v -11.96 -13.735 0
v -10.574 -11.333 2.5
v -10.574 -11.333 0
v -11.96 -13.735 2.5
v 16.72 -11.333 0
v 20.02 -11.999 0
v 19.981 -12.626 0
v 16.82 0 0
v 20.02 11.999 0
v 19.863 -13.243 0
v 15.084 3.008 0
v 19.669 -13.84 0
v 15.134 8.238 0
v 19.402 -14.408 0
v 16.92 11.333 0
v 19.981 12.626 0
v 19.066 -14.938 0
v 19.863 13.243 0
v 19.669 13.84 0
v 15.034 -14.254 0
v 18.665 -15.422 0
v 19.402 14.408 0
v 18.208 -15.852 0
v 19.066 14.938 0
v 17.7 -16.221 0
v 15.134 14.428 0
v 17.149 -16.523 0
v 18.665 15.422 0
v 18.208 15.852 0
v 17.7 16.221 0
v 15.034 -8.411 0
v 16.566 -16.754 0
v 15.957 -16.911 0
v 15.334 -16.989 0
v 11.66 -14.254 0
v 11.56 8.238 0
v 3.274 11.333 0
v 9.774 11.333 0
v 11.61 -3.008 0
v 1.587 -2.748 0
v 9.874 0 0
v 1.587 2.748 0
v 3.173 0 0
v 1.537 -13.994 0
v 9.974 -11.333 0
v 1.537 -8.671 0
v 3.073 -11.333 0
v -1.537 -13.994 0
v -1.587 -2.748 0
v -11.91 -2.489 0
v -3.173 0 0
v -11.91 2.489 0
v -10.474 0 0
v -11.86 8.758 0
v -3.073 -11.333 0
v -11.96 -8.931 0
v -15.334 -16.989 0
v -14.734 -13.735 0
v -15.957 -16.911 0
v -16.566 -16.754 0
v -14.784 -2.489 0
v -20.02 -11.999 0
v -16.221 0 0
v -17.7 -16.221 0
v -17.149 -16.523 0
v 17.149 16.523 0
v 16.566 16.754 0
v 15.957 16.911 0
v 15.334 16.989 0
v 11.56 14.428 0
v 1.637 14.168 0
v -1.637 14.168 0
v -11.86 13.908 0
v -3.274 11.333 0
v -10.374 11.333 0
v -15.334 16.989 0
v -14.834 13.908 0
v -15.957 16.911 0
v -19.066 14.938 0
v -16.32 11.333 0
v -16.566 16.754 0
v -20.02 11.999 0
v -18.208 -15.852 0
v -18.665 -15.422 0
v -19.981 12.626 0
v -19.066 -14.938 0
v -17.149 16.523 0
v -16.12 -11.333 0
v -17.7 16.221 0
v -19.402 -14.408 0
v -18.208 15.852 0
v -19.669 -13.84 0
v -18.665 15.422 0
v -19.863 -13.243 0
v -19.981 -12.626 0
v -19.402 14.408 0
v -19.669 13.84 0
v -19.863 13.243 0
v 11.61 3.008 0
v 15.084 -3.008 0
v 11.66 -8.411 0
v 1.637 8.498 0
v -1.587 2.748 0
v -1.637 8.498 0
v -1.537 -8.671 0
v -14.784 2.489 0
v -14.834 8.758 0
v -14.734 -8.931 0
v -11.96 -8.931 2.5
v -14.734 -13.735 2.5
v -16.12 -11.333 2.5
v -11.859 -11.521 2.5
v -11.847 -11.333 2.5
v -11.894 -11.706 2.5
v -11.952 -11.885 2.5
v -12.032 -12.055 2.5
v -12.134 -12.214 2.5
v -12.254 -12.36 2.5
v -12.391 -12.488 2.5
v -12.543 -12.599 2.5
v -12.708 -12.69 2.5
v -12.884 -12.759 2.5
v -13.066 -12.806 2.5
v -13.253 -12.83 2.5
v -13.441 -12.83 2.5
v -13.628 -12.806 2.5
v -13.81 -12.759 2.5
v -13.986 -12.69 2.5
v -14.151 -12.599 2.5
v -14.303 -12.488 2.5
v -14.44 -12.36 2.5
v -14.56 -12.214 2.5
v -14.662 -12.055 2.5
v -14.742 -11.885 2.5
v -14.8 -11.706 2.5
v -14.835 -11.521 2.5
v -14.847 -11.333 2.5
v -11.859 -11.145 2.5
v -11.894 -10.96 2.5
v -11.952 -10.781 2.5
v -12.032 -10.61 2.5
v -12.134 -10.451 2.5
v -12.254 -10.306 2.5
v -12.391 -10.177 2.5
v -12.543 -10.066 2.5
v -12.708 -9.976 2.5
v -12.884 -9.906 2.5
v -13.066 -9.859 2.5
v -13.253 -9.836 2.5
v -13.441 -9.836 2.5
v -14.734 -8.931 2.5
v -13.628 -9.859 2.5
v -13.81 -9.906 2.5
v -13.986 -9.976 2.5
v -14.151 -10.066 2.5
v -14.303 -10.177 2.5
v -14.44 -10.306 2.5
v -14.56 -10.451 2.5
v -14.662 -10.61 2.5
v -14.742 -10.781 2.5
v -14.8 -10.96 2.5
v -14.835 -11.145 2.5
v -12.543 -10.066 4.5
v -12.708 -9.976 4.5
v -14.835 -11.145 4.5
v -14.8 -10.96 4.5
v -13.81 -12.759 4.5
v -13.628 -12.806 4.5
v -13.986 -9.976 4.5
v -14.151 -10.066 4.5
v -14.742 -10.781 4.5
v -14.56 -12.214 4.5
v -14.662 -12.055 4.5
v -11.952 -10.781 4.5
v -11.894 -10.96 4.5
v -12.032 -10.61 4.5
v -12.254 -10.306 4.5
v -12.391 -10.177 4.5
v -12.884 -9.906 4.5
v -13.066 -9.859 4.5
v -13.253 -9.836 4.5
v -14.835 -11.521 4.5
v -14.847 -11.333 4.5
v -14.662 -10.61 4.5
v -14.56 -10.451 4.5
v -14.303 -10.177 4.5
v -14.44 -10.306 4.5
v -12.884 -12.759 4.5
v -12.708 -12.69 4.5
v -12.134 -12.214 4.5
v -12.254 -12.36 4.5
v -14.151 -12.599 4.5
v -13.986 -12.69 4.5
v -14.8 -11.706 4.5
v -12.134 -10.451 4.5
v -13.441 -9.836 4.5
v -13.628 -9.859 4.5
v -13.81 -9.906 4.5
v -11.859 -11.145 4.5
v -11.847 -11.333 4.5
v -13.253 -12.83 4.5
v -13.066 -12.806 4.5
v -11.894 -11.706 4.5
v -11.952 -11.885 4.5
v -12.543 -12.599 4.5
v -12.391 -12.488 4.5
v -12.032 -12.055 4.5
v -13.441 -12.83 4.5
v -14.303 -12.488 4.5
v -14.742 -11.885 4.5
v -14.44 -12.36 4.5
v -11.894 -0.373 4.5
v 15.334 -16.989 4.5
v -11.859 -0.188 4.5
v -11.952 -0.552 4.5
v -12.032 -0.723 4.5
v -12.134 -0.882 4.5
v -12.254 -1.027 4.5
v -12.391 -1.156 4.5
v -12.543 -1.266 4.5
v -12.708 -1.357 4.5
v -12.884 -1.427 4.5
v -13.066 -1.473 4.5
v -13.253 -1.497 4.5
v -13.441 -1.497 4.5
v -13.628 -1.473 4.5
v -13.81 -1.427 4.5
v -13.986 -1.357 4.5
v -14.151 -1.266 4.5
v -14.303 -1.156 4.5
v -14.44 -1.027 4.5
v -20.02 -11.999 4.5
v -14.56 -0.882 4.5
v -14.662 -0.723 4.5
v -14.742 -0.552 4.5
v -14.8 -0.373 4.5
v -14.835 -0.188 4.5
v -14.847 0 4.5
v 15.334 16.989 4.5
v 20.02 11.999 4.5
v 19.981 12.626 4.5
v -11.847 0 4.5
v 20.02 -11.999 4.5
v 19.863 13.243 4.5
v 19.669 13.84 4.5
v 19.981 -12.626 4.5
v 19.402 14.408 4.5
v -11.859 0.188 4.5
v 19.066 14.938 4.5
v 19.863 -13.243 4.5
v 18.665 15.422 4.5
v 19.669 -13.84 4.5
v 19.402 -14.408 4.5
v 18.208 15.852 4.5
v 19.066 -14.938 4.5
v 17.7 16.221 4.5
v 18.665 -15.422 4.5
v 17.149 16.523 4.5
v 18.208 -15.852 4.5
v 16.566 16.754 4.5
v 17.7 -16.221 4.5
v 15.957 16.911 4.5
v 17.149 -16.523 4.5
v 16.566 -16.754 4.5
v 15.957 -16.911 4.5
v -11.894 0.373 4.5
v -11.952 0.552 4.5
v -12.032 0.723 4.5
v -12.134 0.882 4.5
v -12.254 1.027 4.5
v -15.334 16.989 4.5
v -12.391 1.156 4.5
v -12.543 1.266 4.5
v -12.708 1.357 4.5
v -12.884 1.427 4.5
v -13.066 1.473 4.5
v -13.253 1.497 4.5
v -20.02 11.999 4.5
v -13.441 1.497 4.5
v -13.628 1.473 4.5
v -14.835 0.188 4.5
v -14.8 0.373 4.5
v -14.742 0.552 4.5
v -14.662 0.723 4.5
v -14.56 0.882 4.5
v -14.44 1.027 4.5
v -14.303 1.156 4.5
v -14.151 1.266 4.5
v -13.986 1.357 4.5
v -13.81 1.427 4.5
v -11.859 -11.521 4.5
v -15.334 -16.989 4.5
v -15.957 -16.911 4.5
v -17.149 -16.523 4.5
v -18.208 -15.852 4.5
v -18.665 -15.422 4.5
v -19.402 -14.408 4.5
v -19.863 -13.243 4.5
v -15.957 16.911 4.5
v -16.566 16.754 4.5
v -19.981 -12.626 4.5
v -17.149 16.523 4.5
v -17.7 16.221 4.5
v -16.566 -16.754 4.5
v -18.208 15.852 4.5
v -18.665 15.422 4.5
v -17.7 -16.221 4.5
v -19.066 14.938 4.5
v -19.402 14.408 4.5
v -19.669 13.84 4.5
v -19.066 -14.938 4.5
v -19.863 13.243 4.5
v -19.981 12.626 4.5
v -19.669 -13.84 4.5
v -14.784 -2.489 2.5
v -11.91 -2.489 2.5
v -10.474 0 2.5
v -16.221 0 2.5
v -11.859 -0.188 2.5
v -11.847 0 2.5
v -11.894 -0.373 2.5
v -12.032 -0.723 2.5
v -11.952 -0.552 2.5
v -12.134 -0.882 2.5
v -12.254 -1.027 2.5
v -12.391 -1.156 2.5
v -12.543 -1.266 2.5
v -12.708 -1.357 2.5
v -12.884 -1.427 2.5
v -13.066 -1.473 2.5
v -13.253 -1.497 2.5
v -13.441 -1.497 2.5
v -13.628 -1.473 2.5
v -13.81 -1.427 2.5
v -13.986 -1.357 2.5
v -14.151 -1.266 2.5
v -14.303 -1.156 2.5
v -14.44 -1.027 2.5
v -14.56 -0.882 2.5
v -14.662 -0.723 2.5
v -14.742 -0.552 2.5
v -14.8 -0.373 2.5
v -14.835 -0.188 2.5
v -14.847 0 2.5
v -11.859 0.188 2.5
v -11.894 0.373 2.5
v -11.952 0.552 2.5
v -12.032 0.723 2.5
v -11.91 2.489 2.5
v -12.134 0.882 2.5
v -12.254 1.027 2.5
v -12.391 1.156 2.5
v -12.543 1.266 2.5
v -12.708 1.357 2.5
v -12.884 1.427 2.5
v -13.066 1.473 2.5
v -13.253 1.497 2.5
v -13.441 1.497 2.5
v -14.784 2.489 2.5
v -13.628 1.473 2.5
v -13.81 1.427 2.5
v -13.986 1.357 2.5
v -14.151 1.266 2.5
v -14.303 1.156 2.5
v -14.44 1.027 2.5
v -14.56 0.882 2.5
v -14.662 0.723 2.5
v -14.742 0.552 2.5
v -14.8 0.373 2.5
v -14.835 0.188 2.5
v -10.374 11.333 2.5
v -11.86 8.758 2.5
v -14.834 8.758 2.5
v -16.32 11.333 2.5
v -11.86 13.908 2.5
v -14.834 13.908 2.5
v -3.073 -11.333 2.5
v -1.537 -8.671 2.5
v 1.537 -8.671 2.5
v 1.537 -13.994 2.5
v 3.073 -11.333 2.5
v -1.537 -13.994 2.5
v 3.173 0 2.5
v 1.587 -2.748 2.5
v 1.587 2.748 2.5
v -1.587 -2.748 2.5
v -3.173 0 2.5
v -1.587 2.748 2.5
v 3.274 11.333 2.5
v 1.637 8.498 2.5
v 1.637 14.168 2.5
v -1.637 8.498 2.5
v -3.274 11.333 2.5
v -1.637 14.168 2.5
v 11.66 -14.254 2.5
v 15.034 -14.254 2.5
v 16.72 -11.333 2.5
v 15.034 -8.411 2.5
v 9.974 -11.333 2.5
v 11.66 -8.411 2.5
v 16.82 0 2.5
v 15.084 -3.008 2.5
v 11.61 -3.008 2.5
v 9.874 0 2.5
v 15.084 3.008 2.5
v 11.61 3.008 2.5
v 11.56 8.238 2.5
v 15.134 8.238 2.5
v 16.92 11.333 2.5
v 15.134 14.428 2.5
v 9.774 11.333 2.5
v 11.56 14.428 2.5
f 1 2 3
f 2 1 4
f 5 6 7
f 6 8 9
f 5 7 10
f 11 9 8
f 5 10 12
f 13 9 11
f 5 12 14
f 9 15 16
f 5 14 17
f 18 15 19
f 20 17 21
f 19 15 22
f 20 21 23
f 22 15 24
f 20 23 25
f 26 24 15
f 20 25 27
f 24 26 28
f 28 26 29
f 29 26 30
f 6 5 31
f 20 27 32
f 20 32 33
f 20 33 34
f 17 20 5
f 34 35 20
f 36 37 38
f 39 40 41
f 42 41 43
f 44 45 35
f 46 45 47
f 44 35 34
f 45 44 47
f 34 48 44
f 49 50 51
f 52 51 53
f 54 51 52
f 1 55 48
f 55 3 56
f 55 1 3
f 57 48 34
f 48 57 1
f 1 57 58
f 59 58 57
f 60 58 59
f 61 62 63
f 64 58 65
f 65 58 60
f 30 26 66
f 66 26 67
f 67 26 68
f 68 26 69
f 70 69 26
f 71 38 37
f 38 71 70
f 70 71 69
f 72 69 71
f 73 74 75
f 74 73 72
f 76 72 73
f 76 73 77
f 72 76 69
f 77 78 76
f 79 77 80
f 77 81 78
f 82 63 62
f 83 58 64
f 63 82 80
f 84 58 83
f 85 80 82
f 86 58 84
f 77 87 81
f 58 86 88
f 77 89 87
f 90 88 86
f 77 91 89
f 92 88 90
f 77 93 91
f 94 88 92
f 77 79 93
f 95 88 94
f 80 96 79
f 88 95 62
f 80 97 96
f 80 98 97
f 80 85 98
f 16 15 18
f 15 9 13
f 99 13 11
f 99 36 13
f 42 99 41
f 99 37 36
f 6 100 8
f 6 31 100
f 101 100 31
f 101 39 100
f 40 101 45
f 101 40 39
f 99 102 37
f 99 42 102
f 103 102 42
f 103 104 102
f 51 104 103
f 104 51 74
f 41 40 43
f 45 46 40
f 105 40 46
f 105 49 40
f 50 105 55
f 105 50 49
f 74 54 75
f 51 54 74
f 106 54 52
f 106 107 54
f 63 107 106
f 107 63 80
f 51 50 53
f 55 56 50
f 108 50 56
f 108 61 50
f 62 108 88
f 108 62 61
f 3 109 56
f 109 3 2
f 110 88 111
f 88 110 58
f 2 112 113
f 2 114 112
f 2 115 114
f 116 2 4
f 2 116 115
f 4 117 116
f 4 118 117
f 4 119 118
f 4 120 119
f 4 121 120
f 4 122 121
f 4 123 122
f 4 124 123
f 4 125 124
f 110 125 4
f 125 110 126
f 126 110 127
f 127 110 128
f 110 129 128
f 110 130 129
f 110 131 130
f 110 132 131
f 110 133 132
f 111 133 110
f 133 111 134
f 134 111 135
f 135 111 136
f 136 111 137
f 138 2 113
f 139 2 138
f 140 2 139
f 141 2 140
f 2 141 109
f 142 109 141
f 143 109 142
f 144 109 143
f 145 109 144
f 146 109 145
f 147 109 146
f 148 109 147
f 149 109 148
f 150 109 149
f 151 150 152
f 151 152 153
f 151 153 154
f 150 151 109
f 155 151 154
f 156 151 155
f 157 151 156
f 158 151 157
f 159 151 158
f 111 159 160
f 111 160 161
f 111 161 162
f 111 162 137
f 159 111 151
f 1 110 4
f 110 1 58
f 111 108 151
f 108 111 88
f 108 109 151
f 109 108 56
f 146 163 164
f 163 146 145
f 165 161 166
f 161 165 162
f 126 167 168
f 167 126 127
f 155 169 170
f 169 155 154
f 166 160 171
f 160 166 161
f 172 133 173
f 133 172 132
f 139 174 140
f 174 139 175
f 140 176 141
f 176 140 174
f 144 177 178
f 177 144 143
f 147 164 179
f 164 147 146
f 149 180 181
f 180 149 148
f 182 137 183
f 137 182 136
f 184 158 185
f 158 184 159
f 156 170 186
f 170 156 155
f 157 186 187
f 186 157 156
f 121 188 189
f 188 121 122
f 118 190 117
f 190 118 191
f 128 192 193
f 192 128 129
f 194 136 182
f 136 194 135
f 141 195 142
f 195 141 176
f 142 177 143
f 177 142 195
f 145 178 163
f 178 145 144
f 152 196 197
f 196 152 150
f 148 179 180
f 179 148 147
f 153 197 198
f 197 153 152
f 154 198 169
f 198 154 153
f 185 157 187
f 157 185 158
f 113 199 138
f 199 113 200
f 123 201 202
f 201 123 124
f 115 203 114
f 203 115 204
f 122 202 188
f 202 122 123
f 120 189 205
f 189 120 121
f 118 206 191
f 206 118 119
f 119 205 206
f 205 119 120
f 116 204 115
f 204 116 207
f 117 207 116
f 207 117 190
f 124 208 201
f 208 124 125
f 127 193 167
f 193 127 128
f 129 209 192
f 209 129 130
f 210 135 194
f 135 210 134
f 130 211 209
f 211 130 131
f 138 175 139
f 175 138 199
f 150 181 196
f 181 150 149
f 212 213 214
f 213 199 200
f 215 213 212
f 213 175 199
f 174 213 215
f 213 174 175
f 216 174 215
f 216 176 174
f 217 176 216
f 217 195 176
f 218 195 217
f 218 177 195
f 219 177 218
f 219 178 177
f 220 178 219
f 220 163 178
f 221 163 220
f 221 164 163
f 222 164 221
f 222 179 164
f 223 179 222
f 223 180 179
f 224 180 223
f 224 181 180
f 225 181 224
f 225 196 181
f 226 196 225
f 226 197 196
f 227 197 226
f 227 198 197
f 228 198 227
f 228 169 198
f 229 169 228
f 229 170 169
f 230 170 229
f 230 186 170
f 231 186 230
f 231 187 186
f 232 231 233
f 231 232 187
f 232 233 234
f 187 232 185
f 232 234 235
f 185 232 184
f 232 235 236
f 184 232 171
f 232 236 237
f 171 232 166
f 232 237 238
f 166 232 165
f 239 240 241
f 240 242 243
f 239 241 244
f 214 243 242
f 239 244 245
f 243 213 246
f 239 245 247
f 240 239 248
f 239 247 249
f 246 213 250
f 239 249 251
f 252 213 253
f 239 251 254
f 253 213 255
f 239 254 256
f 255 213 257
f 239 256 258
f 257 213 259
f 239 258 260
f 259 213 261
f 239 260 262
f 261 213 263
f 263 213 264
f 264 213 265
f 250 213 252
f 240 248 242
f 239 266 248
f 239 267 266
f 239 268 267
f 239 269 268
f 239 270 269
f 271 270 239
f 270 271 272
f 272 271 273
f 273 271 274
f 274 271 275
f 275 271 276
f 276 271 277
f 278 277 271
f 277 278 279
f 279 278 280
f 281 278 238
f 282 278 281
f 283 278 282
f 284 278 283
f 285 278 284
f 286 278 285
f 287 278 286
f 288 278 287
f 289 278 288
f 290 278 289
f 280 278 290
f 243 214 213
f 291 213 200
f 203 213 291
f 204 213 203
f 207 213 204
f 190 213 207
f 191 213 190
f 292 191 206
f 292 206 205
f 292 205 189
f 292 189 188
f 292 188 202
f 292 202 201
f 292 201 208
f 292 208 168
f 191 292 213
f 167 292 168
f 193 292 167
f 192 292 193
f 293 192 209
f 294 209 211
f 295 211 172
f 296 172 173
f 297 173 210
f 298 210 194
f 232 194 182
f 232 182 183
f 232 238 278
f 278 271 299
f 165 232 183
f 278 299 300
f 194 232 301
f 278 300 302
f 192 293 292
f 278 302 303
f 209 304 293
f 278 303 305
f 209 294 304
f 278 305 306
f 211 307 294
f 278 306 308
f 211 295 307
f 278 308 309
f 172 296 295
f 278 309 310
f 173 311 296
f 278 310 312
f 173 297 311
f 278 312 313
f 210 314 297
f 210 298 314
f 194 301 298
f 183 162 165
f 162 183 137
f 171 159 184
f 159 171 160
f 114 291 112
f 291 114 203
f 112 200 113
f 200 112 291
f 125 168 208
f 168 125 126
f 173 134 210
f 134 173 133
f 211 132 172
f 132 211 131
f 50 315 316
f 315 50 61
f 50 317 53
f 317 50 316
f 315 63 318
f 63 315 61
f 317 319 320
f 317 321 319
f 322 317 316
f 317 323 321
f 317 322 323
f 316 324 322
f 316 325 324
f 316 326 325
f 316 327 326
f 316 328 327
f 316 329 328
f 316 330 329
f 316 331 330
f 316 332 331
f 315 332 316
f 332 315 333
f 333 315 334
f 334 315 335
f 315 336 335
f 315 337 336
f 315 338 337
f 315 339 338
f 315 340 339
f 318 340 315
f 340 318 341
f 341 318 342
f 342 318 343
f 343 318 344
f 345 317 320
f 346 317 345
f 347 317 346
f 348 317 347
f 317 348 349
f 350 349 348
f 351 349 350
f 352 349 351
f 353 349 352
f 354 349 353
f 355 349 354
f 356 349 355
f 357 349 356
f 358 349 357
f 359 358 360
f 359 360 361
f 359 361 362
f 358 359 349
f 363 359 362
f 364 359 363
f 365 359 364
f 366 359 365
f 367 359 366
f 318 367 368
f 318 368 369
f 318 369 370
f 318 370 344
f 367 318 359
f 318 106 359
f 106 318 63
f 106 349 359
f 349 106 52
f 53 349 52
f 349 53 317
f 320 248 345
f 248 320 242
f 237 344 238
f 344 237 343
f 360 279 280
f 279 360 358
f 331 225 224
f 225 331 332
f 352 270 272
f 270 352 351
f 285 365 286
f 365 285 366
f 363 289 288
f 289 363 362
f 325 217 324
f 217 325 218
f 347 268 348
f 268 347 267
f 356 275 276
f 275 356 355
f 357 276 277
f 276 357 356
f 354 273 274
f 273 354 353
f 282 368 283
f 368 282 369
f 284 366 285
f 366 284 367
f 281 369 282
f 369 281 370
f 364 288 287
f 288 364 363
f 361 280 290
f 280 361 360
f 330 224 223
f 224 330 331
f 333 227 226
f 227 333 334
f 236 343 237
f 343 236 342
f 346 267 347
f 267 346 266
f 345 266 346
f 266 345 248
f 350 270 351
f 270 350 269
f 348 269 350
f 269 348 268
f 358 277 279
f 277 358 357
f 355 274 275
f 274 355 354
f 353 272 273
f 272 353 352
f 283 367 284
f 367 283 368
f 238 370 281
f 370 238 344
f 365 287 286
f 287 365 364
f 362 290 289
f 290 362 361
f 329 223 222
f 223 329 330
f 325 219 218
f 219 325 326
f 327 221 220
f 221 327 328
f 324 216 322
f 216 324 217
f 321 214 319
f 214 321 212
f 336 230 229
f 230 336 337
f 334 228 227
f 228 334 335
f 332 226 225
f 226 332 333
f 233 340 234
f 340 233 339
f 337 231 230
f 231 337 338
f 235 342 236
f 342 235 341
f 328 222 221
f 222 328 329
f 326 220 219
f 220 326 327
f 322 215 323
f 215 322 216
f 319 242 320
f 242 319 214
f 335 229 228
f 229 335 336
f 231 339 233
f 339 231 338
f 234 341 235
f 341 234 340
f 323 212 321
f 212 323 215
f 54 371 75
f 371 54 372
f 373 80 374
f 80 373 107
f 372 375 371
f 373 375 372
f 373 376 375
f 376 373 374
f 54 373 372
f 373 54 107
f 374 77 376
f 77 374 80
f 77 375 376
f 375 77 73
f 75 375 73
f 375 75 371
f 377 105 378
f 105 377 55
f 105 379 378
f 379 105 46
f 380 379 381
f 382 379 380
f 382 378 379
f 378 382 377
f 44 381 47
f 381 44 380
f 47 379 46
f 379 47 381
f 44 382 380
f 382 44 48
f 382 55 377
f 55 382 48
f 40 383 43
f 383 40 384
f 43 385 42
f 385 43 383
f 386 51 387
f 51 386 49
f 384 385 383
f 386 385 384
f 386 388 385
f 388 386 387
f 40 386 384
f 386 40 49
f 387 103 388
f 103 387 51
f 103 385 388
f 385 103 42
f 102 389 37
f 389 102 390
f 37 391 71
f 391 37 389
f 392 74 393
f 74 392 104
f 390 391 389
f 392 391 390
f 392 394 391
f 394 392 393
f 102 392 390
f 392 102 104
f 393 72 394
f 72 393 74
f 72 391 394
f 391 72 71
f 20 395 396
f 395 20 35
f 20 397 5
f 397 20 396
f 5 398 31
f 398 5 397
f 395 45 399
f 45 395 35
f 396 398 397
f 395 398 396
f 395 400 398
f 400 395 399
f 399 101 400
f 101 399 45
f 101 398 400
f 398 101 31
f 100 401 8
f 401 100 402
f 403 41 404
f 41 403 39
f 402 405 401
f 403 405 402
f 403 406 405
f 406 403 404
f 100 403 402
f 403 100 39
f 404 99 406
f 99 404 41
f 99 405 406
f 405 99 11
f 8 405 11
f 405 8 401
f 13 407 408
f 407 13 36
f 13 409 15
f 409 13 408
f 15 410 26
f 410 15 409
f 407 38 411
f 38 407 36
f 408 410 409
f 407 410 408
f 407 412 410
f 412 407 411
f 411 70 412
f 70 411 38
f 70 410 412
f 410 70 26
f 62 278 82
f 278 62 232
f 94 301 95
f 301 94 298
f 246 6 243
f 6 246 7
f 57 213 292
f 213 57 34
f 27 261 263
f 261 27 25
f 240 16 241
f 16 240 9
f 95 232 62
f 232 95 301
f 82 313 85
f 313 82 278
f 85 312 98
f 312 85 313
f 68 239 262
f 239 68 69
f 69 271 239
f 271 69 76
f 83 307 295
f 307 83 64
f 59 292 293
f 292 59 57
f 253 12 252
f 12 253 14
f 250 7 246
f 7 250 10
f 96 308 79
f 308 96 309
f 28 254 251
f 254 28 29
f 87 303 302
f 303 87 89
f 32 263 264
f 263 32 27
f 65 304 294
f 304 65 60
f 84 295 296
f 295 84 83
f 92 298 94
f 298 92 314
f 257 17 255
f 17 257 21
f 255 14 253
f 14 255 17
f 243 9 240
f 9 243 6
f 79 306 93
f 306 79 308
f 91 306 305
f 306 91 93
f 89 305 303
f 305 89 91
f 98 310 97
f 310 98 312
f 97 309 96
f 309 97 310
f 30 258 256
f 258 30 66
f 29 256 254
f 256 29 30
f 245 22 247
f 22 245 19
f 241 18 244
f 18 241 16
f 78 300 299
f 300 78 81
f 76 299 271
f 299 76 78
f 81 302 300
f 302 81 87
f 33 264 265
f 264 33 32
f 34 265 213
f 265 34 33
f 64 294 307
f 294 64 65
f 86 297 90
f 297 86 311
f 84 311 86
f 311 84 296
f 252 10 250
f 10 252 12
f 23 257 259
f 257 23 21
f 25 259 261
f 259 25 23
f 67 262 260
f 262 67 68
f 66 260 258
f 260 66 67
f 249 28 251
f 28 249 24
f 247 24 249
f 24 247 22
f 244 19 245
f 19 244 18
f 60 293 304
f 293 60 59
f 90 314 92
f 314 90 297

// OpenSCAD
$fn = 50;


difference() {
	union() {
		translate(v = [0, 0, 0]) {
			rotate(a = [0, 0, 0]) {
				hull() {
					translate(v = [-15.0205000000, 11.9991334489, 0]) {
						rotate(a = [0, 0, 0]) {
							translate(v = [0, 0, 0]) {
								rotate(a = [0, 0, 0]) {
									cylinder(h = 4.5000000000, r = 5);
								}
							}
						}
					}
					translate(v = [15.0205000000, 11.9991334489, 0]) {
						rotate(a = [0, 0, 0]) {
							translate(v = [0, 0, 0]) {
								rotate(a = [0, 0, 0]) {
									cylinder(h = 4.5000000000, r = 5);
								}
							}
						}
					}
					translate(v = [-15.0205000000, -11.9991334489, 0]) {
						rotate(a = [0, 0, 0]) {
							translate(v = [0, 0, 0]) {
								rotate(a = [0, 0, 0]) {
									cylinder(h = 4.5000000000, r = 5);
								}
							}
						}
					}
					translate(v = [15.0205000000, -11.9991334489, 0]) {
						rotate(a = [0, 0, 0]) {
							translate(v = [0, 0, 0]) {
								rotate(a = [0, 0, 0]) {
									cylinder(h = 4.5000000000, r = 5);
								}
							}
						}
					}
				}
			}
		}
	}
	union() {
		translate(v = [-13.3470000000, -11.3327556326, 0]) {
			rotate(a = [0, 0, 0]) {
				translate(v = [0, 0, 0]) {
					rotate(a = [0, 0, 0]) {
						linear_extrude(height = 2.5000000000) {
							polygon(points = [[2.7735000000, 0.0000000000], [1.3867500000, 2.4019214574], [-1.3867500000, 2.4019214574], [-2.7735000000, 0.0000000000], [-1.3867500000, -2.4019214574], [1.3867500000, -2.4019214574]]);
						}
					}
				}
			}
		}
		#translate(v = [-13.3470000000, -11.3327556326, 0]) {
			rotate(a = [0, 0, 0]) {
				cylinder(h = 4.5000000000, r = 1.5000000000);
			}
		}
		translate(v = [-13.3470000000, -0.0000000000, 0]) {
			rotate(a = [0, 0, 0]) {
				translate(v = [0, 0, 0]) {
					rotate(a = [0, 0, 0]) {
						linear_extrude(height = 2.5000000000) {
							polygon(points = [[2.8735000000, 0.0000000000], [1.4367500000, 2.4885239978], [-1.4367500000, 2.4885239978], [-2.8735000000, 0.0000000000], [-1.4367500000, -2.4885239978], [1.4367500000, -2.4885239978]]);
						}
					}
				}
			}
		}
		#translate(v = [-13.3470000000, -0.0000000000, 0]) {
			rotate(a = [0, 0, 0]) {
				cylinder(h = 4.5000000000, r = 1.5000000000);
			}
		}
		translate(v = [-13.3470000000, 11.3327556326, 0]) {
			rotate(a = [0, 0, 0]) {
				translate(v = [0, 0, 0]) {
					rotate(a = [0, 0, 0]) {
						linear_extrude(height = 2.5000000000) {
							polygon(points = [[2.9735000000, 0.0000000000], [1.4867500000, 2.5751265382], [-1.4867500000, 2.5751265382], [-2.9735000000, 0.0000000000], [-1.4867500000, -2.5751265382], [1.4867500000, -2.5751265382]]);
						}
					}
				}
			}
		}
		translate(v = [0.0000000000, -11.3327556326, 0]) {
			rotate(a = [0, 0, 0]) {
				translate(v = [0, 0, 0]) {
					rotate(a = [0, 0, 0]) {
						linear_extrude(height = 2.5000000000) {
							polygon(points = [[3.0735000000, 0.0000000000], [1.5367500000, 2.6617290785], [-1.5367500000, 2.6617290785], [-3.0735000000, 0.0000000000], [-1.5367500000, -2.6617290785], [1.5367500000, -2.6617290785]]);
						}
					}
				}
			}
		}
		translate(v = [0.0000000000, -0.0000000000, 0]) {
			rotate(a = [0, 0, 0]) {
				translate(v = [0, 0, 0]) {
					rotate(a = [0, 0, 0]) {
						linear_extrude(height = 2.5000000000) {
							polygon(points = [[3.1735000000, 0.0000000000], [1.5867500000, 2.7483316189], [-1.5867500000, 2.7483316189], [-3.1735000000, 0.0000000000], [-1.5867500000, -2.7483316189], [1.5867500000, -2.7483316189]]);
						}
					}
				}
			}
		}
		translate(v = [0.0000000000, 11.3327556326, 0]) {
			rotate(a = [0, 0, 0]) {
				translate(v = [0, 0, 0]) {
					rotate(a = [0, 0, 0]) {
						linear_extrude(height = 2.5000000000) {
							polygon(points = [[3.2735000000, 0.0000000000], [1.6367500000, 2.8349341593], [-1.6367500000, 2.8349341593], [-3.2735000000, 0.0000000000], [-1.6367500000, -2.8349341593], [1.6367500000, -2.8349341593]]);
						}
					}
				}
			}
		}
		translate(v = [13.3470000000, -11.3327556326, 0]) {
			rotate(a = [0, 0, 0]) {
				translate(v = [0, 0, 0]) {
					rotate(a = [0, 0, 0]) {
						linear_extrude(height = 2.5000000000) {
							polygon(points = [[3.3735000000, 0.0000000000], [1.6867500000, 2.9215366997], [-1.6867500000, 2.9215366997], [-3.3735000000, 0.0000000000], [-1.6867500000, -2.9215366997], [1.6867500000, -2.9215366997]]);
						}
					}
				}
			}
		}
		translate(v = [13.3470000000, -0.0000000000, 0]) {
			rotate(a = [0, 0, 0]) {
				translate(v = [0, 0, 0]) {
					rotate(a = [0, 0, 0]) {
						linear_extrude(height = 2.5000000000) {
							polygon(points = [[3.4735000000, 0.0000000000], [1.7367500000, 3.0081392400], [-1.7367500000, 3.0081392400], [-3.4735000000, 0.0000000000], [-1.7367500000, -3.0081392400], [1.7367500000, -3.0081392400]]);
						}
					}
				}
			}
		}
		translate(v = [13.3470000000, 11.3327556326, 0]) {
			rotate(a = [0, 0, 0]) {
				translate(v = [0, 0, 0]) {
					rotate(a = [0, 0, 0]) {
						linear_extrude(height = 2.5000000000) {
							polygon(points = [[3.5735000000, 0.0000000000], [1.7867500000, 3.0947417804], [-1.7867500000, 3.0947417804], [-3.5735000000, 0.0000000000], [-1.7867500000, -3.0947417804], [1.7867500000, -3.0947417804]]);
						}
					}
				}
			}
		}
	}
}
